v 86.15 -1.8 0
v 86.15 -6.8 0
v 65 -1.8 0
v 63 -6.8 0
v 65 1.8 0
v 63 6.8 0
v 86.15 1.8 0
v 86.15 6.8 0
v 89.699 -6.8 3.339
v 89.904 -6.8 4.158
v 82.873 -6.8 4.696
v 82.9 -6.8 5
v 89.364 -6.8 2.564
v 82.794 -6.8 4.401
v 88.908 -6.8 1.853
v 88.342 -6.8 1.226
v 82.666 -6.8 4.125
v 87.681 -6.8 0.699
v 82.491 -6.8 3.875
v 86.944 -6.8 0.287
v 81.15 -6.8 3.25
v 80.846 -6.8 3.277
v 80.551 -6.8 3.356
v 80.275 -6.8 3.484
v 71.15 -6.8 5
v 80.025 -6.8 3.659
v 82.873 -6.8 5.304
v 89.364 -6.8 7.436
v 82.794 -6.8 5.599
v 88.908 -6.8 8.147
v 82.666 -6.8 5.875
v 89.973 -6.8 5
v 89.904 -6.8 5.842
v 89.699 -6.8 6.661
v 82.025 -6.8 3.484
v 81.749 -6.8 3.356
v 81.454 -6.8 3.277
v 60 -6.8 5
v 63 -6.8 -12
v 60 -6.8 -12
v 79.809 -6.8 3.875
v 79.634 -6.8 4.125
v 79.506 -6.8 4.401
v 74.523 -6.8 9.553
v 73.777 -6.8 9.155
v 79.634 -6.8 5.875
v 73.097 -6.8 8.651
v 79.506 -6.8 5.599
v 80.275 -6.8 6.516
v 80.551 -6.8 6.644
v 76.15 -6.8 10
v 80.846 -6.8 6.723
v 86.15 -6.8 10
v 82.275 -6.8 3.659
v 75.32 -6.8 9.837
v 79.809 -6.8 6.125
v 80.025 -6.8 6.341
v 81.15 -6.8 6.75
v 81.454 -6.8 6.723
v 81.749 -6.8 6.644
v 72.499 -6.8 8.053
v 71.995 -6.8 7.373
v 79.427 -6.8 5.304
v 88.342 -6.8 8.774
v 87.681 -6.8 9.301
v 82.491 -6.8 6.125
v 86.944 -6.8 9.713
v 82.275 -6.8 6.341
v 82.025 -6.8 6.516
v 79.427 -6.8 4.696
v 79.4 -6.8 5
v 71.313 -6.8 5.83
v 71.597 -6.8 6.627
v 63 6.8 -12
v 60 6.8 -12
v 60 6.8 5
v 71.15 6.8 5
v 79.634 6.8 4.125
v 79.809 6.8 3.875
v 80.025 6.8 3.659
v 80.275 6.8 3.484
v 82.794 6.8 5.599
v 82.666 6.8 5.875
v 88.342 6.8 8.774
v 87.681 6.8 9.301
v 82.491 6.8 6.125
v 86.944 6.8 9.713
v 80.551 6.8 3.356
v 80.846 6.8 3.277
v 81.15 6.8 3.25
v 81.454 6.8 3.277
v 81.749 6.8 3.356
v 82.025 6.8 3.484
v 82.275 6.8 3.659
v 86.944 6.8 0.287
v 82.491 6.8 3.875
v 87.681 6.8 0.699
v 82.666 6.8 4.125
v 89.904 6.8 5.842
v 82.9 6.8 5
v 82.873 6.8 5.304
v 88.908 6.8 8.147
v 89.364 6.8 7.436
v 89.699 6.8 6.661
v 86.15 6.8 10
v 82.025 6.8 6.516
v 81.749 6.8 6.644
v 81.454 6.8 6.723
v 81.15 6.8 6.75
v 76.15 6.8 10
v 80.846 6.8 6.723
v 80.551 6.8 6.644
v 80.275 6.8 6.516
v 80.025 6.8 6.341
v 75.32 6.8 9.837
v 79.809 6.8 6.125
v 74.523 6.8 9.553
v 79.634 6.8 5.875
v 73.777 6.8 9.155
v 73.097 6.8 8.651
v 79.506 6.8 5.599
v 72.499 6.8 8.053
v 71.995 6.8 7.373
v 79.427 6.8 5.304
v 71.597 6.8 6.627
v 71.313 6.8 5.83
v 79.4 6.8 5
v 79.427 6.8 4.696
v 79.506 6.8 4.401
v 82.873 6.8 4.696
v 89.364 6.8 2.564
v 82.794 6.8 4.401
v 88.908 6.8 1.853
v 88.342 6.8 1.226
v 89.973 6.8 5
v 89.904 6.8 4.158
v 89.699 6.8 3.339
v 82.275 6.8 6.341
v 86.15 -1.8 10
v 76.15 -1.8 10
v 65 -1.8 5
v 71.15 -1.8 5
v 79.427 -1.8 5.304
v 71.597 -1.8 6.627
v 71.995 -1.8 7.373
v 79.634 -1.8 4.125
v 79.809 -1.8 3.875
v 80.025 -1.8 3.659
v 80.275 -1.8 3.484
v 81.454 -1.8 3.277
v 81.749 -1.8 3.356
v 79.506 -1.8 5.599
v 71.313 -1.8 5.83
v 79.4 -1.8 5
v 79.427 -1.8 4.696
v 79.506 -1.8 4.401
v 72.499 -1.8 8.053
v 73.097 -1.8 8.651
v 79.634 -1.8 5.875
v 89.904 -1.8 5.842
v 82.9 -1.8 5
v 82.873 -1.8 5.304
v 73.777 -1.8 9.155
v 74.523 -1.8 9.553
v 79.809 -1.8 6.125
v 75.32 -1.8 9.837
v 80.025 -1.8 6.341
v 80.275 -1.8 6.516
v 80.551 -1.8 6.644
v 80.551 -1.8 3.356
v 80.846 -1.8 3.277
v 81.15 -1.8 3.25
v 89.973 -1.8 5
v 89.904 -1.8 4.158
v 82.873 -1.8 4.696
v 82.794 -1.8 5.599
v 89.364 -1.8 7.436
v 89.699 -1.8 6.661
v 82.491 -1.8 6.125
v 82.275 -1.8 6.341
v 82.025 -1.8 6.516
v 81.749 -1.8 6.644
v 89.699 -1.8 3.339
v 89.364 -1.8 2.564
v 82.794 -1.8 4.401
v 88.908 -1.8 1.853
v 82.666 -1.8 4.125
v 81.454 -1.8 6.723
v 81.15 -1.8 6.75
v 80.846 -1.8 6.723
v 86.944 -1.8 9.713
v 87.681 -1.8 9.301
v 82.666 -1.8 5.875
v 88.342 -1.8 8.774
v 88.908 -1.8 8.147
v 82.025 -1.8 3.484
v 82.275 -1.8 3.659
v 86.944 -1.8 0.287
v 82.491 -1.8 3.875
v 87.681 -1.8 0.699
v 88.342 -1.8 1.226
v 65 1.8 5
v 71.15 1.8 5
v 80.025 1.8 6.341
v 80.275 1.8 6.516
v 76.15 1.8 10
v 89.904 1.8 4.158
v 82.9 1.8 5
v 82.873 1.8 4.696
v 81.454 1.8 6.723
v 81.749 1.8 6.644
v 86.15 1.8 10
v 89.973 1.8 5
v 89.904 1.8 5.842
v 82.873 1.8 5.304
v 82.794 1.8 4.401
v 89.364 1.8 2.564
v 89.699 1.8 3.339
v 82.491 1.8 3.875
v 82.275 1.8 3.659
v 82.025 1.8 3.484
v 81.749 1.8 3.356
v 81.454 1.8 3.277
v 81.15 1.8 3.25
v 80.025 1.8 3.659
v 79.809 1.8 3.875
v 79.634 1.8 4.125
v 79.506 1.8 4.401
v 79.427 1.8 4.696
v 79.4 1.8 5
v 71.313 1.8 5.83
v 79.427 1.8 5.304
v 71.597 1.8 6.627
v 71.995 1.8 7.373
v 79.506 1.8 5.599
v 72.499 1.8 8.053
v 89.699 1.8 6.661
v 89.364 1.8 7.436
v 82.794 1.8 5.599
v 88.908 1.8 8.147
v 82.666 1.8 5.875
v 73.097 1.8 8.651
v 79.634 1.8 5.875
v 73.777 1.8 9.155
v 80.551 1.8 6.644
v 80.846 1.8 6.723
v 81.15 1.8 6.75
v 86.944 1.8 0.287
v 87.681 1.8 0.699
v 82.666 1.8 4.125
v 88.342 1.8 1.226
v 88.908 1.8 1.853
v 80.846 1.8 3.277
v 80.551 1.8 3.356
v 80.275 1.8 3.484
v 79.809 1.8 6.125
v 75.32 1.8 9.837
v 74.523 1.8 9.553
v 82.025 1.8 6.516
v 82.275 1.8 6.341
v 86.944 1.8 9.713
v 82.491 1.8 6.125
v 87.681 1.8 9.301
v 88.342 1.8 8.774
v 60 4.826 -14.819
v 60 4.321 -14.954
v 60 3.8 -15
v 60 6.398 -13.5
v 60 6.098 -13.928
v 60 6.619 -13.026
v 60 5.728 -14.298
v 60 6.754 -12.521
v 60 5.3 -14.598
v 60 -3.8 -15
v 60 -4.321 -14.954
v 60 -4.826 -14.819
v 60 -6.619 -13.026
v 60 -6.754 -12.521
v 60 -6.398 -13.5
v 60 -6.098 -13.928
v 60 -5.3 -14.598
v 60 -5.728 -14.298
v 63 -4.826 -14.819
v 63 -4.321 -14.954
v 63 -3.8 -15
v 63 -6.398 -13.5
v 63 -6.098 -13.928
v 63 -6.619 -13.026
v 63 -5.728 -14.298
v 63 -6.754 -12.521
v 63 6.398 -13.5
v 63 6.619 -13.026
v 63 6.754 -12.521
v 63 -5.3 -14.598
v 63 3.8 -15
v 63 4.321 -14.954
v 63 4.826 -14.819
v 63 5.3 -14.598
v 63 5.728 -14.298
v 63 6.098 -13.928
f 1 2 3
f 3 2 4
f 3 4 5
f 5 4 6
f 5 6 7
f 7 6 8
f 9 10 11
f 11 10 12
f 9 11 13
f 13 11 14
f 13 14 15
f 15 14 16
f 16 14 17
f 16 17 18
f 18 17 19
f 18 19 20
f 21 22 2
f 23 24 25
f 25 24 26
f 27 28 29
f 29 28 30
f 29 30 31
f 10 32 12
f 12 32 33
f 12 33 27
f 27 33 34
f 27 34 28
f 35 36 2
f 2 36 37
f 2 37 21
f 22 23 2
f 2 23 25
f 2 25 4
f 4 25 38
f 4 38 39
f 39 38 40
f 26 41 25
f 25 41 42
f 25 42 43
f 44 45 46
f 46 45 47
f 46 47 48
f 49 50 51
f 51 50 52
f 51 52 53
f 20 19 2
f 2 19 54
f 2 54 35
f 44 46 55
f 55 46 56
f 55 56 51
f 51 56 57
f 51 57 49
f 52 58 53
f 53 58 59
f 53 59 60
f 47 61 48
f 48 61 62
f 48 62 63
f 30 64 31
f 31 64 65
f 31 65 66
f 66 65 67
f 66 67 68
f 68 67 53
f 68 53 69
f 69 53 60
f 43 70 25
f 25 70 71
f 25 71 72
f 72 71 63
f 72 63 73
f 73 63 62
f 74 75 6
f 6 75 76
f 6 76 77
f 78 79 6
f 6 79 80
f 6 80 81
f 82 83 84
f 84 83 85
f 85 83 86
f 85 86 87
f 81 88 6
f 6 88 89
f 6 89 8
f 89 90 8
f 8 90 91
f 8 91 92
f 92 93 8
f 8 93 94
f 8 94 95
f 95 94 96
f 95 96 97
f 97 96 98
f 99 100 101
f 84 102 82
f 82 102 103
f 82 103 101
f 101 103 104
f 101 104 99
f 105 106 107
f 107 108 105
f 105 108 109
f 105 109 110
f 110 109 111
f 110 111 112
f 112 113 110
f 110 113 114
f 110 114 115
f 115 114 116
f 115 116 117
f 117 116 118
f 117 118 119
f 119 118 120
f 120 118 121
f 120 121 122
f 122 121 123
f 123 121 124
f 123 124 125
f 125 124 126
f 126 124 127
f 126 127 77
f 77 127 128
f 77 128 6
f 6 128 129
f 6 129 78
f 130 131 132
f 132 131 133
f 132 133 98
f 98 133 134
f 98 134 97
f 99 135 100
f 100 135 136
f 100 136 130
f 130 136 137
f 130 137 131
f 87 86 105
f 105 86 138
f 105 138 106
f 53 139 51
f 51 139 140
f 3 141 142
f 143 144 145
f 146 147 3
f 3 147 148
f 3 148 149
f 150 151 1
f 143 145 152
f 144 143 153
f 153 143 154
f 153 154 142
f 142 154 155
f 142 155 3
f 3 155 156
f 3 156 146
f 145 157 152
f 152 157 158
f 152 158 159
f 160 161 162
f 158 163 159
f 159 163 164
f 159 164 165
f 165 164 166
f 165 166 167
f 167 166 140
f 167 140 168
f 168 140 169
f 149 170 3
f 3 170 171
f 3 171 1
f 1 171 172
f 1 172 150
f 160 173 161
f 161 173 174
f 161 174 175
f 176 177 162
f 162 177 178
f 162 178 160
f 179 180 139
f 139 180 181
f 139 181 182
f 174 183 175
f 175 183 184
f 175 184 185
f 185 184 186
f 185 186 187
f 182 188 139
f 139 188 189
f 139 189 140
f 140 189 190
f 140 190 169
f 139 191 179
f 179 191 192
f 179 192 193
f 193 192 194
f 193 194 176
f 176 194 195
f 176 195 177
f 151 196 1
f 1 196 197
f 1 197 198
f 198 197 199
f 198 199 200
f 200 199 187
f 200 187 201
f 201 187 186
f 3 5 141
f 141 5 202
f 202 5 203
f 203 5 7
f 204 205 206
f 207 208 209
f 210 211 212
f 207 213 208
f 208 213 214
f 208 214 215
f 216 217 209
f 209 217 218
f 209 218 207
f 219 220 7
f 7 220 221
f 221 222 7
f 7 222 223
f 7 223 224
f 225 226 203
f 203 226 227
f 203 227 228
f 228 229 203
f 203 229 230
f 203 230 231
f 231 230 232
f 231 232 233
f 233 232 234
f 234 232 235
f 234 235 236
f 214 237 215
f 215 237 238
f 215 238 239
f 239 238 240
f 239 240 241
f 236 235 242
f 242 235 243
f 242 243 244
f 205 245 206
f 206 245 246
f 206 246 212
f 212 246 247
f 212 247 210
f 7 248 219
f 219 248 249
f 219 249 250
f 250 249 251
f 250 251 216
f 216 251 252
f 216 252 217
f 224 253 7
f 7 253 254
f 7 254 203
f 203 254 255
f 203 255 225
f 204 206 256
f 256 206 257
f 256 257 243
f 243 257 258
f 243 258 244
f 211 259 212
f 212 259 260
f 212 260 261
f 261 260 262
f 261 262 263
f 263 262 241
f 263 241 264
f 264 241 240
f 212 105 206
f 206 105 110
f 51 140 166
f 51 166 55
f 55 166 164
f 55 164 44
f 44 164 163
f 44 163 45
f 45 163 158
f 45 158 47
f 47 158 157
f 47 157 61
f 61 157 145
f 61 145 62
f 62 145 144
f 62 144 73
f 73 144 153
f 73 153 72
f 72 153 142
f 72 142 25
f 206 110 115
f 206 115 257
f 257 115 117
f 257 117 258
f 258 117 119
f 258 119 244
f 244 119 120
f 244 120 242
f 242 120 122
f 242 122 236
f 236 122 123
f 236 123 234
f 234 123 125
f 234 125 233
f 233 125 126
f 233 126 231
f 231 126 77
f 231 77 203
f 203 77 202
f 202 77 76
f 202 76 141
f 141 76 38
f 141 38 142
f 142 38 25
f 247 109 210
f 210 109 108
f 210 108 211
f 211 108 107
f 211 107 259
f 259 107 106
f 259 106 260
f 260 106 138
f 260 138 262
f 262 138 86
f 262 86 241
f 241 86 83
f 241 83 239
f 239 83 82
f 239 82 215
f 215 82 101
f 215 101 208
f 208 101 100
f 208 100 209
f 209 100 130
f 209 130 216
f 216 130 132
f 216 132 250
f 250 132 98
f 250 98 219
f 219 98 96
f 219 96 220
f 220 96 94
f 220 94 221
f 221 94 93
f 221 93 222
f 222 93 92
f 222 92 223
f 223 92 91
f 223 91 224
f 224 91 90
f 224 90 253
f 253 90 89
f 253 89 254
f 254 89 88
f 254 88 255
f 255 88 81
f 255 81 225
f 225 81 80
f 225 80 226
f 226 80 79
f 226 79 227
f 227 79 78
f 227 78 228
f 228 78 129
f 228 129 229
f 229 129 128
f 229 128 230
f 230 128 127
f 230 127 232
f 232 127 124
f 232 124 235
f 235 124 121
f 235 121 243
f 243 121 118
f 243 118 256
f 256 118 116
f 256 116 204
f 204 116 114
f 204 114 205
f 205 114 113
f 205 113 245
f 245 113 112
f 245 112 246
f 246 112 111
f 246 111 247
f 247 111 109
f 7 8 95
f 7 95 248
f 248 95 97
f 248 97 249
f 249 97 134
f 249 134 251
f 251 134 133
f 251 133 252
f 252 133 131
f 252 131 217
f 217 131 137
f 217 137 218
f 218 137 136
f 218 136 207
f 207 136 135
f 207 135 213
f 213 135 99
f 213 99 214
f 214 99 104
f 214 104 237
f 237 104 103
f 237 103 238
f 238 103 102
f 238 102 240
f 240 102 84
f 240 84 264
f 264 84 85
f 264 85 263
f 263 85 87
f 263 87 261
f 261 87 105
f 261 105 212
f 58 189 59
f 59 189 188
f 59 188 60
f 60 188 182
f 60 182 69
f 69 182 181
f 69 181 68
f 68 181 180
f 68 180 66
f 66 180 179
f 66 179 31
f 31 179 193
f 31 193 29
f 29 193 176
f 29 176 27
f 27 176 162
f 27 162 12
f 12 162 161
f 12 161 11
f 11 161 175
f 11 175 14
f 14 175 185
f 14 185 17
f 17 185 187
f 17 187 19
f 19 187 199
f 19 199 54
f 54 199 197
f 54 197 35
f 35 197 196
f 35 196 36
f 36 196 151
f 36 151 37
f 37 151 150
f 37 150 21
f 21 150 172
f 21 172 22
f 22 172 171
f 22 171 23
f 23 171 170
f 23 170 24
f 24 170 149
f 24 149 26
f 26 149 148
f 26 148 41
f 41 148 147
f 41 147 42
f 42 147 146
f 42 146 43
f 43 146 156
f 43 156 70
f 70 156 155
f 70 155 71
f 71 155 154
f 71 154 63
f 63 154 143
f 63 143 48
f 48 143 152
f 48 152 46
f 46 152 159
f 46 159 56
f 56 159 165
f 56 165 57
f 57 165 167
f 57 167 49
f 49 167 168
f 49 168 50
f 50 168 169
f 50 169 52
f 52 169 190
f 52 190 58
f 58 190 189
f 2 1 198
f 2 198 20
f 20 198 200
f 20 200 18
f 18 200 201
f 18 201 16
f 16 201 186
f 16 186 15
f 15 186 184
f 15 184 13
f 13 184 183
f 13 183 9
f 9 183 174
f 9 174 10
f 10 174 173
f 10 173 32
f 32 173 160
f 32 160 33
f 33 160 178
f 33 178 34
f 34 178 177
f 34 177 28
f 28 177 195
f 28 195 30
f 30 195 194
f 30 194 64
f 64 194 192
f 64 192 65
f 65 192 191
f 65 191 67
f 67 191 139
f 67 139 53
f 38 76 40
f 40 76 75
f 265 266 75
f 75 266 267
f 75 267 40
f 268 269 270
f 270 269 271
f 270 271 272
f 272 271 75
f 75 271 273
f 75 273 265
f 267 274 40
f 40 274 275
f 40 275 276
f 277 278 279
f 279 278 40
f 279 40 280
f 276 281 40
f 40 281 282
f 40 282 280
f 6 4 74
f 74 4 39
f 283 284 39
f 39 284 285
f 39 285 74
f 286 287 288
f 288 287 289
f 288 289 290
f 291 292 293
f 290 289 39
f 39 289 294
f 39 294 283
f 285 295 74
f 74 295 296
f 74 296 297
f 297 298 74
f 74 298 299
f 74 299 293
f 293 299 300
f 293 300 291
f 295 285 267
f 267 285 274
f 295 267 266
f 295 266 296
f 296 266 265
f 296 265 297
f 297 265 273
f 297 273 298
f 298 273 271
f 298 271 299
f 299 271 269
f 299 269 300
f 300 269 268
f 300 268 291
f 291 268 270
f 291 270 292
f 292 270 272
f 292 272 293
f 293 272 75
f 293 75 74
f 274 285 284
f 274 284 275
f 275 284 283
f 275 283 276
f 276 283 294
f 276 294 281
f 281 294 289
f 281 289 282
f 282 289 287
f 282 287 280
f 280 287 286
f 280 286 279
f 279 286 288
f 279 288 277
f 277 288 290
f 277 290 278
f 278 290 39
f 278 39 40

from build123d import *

# Parameters (mm, degrees)
SALIENTE_EXTRUIR1_DEPTH = 10
CROQUIS2_R              = 1.75
CORTAR_EXTRUIR1_DEPTH   = 92.569427212
CROQUIS3_W              = 3
CROQUIS3_H              = 13.6
SALIENTE_EXTRUIR2_DEPTH = 15
CHAFL_N1_SIZE           = 10
CHAFL_N1_SIZE2          = 2.679491924
REDONDEO1_R             = 3
CROQUIS4_W              = 166.722641079
CROQUIS4_H              = 47.037936504
CORTAR_EXTRUIR2_DEPTH   = 93.22299515


with BuildPart() as part:
    # Croquis1 → Saliente-Extruir1 (new body)
    with BuildSketch(Plane.XY):
        Polygon((-90, -6.8), (-90, -1.8), (-65, -1.8), (-65, 1.8), (-90, 1.8), (-90, 6.8), (90, 6.8), (90, 1.8), (65, 1.8), (65, -1.8), (90, -1.8), (90, -6.8), align=None)
    extrude(amount=SALIENTE_EXTRUIR1_DEPTH)

    # Croquis2 → Cortar-Extruir1 (cut, through all)
    with BuildSketch(Plane(origin=(0, 6.8, 0), x_dir=(1, 0, 0), z_dir=(0, 1, 0))):
        with BuildLine():
            ThreePointArc((-86.15, -10), (-89.972889442, -5), (-86.15, 0))
            Line((-86.15, 0), (-90, 0))
            Line((-90, 0), (-90, -10))
            Line((-90, -10), (-86.15, -10))
        make_face()
        with BuildLine():
            Line((86.15, -10), (90, -10))
            Line((90, -10), (90, 0))
            Line((90, 0), (86.15, 0))
            ThreePointArc((86.15, 0), (89.972889442, -5), (86.15, -10))
        make_face()
        with BuildLine():
            Line((71.15, -5), (-71.15, -5))
            ThreePointArc((-71.15, -5), (-72.786720767, -8.363279233), (-76.15, -10))
            Line((-76.15, -10), (76.15, -10))
            ThreePointArc((76.15, -10), (72.786720767, -8.363279233), (71.15, -5))
        make_face()
        with Locations(Location((81.15, -5, 0), (0, 0, 270))):
            Circle(CROQUIS2_R)
    extrude(amount=-CORTAR_EXTRUIR1_DEPTH, mode=Mode.SUBTRACT)

    # Croquis3 → Saliente-Extruir2 (add)
    with BuildSketch(Plane(origin=(0, 0, 0), x_dir=(-1, 0, 0), z_dir=(0, 0, -1))):
        with Locations((-61.5, 0)):
            Rectangle(CROQUIS3_W, CROQUIS3_H)
        with Locations((61.5, 0)):
            Rectangle(CROQUIS3_W, CROQUIS3_H)
    extrude(amount=SALIENTE_EXTRUIR2_DEPTH)

    # Chaflán1
    chafl_n1_edges = [part.edges().sort_by_distance(p)[0] for p in [
        (0, -6.8, 0),
    ]]
    chafl_n1_side = [part.faces().sort_by_distance(p)[0] for p in [
        (0, 0, 0),
    ]]
    chamfer(chafl_n1_edges, length=CHAFL_N1_SIZE, length2=CHAFL_N1_SIZE2, reference=chafl_n1_side[0])

    # Redondeo1
    redondeo1_edges = [part.edges().sort_by_distance(p)[0] for p in [
        (61.5, 6.8, -15),
        (61.5, -6.8, -15),
        (-61.5, 6.8, -15),
        (-61.5, -6.8, -15),
    ]]
    fillet(redondeo1_edges, radius=REDONDEO1_R)

    # Croquis4 → Cortar-Extruir2 (cut, through all)
    with BuildSketch(Plane(origin=(0, -6.8, 0), x_dir=(-1, 0, 0), z_dir=(0, -1, 0))):
        with Locations((23.36132054, -0.816815002)):
            Rectangle(CROQUIS4_W, CROQUIS4_H)
    extrude(amount=-CORTAR_EXTRUIR2_DEPTH, mode=Mode.SUBTRACT)


solid = part.part
